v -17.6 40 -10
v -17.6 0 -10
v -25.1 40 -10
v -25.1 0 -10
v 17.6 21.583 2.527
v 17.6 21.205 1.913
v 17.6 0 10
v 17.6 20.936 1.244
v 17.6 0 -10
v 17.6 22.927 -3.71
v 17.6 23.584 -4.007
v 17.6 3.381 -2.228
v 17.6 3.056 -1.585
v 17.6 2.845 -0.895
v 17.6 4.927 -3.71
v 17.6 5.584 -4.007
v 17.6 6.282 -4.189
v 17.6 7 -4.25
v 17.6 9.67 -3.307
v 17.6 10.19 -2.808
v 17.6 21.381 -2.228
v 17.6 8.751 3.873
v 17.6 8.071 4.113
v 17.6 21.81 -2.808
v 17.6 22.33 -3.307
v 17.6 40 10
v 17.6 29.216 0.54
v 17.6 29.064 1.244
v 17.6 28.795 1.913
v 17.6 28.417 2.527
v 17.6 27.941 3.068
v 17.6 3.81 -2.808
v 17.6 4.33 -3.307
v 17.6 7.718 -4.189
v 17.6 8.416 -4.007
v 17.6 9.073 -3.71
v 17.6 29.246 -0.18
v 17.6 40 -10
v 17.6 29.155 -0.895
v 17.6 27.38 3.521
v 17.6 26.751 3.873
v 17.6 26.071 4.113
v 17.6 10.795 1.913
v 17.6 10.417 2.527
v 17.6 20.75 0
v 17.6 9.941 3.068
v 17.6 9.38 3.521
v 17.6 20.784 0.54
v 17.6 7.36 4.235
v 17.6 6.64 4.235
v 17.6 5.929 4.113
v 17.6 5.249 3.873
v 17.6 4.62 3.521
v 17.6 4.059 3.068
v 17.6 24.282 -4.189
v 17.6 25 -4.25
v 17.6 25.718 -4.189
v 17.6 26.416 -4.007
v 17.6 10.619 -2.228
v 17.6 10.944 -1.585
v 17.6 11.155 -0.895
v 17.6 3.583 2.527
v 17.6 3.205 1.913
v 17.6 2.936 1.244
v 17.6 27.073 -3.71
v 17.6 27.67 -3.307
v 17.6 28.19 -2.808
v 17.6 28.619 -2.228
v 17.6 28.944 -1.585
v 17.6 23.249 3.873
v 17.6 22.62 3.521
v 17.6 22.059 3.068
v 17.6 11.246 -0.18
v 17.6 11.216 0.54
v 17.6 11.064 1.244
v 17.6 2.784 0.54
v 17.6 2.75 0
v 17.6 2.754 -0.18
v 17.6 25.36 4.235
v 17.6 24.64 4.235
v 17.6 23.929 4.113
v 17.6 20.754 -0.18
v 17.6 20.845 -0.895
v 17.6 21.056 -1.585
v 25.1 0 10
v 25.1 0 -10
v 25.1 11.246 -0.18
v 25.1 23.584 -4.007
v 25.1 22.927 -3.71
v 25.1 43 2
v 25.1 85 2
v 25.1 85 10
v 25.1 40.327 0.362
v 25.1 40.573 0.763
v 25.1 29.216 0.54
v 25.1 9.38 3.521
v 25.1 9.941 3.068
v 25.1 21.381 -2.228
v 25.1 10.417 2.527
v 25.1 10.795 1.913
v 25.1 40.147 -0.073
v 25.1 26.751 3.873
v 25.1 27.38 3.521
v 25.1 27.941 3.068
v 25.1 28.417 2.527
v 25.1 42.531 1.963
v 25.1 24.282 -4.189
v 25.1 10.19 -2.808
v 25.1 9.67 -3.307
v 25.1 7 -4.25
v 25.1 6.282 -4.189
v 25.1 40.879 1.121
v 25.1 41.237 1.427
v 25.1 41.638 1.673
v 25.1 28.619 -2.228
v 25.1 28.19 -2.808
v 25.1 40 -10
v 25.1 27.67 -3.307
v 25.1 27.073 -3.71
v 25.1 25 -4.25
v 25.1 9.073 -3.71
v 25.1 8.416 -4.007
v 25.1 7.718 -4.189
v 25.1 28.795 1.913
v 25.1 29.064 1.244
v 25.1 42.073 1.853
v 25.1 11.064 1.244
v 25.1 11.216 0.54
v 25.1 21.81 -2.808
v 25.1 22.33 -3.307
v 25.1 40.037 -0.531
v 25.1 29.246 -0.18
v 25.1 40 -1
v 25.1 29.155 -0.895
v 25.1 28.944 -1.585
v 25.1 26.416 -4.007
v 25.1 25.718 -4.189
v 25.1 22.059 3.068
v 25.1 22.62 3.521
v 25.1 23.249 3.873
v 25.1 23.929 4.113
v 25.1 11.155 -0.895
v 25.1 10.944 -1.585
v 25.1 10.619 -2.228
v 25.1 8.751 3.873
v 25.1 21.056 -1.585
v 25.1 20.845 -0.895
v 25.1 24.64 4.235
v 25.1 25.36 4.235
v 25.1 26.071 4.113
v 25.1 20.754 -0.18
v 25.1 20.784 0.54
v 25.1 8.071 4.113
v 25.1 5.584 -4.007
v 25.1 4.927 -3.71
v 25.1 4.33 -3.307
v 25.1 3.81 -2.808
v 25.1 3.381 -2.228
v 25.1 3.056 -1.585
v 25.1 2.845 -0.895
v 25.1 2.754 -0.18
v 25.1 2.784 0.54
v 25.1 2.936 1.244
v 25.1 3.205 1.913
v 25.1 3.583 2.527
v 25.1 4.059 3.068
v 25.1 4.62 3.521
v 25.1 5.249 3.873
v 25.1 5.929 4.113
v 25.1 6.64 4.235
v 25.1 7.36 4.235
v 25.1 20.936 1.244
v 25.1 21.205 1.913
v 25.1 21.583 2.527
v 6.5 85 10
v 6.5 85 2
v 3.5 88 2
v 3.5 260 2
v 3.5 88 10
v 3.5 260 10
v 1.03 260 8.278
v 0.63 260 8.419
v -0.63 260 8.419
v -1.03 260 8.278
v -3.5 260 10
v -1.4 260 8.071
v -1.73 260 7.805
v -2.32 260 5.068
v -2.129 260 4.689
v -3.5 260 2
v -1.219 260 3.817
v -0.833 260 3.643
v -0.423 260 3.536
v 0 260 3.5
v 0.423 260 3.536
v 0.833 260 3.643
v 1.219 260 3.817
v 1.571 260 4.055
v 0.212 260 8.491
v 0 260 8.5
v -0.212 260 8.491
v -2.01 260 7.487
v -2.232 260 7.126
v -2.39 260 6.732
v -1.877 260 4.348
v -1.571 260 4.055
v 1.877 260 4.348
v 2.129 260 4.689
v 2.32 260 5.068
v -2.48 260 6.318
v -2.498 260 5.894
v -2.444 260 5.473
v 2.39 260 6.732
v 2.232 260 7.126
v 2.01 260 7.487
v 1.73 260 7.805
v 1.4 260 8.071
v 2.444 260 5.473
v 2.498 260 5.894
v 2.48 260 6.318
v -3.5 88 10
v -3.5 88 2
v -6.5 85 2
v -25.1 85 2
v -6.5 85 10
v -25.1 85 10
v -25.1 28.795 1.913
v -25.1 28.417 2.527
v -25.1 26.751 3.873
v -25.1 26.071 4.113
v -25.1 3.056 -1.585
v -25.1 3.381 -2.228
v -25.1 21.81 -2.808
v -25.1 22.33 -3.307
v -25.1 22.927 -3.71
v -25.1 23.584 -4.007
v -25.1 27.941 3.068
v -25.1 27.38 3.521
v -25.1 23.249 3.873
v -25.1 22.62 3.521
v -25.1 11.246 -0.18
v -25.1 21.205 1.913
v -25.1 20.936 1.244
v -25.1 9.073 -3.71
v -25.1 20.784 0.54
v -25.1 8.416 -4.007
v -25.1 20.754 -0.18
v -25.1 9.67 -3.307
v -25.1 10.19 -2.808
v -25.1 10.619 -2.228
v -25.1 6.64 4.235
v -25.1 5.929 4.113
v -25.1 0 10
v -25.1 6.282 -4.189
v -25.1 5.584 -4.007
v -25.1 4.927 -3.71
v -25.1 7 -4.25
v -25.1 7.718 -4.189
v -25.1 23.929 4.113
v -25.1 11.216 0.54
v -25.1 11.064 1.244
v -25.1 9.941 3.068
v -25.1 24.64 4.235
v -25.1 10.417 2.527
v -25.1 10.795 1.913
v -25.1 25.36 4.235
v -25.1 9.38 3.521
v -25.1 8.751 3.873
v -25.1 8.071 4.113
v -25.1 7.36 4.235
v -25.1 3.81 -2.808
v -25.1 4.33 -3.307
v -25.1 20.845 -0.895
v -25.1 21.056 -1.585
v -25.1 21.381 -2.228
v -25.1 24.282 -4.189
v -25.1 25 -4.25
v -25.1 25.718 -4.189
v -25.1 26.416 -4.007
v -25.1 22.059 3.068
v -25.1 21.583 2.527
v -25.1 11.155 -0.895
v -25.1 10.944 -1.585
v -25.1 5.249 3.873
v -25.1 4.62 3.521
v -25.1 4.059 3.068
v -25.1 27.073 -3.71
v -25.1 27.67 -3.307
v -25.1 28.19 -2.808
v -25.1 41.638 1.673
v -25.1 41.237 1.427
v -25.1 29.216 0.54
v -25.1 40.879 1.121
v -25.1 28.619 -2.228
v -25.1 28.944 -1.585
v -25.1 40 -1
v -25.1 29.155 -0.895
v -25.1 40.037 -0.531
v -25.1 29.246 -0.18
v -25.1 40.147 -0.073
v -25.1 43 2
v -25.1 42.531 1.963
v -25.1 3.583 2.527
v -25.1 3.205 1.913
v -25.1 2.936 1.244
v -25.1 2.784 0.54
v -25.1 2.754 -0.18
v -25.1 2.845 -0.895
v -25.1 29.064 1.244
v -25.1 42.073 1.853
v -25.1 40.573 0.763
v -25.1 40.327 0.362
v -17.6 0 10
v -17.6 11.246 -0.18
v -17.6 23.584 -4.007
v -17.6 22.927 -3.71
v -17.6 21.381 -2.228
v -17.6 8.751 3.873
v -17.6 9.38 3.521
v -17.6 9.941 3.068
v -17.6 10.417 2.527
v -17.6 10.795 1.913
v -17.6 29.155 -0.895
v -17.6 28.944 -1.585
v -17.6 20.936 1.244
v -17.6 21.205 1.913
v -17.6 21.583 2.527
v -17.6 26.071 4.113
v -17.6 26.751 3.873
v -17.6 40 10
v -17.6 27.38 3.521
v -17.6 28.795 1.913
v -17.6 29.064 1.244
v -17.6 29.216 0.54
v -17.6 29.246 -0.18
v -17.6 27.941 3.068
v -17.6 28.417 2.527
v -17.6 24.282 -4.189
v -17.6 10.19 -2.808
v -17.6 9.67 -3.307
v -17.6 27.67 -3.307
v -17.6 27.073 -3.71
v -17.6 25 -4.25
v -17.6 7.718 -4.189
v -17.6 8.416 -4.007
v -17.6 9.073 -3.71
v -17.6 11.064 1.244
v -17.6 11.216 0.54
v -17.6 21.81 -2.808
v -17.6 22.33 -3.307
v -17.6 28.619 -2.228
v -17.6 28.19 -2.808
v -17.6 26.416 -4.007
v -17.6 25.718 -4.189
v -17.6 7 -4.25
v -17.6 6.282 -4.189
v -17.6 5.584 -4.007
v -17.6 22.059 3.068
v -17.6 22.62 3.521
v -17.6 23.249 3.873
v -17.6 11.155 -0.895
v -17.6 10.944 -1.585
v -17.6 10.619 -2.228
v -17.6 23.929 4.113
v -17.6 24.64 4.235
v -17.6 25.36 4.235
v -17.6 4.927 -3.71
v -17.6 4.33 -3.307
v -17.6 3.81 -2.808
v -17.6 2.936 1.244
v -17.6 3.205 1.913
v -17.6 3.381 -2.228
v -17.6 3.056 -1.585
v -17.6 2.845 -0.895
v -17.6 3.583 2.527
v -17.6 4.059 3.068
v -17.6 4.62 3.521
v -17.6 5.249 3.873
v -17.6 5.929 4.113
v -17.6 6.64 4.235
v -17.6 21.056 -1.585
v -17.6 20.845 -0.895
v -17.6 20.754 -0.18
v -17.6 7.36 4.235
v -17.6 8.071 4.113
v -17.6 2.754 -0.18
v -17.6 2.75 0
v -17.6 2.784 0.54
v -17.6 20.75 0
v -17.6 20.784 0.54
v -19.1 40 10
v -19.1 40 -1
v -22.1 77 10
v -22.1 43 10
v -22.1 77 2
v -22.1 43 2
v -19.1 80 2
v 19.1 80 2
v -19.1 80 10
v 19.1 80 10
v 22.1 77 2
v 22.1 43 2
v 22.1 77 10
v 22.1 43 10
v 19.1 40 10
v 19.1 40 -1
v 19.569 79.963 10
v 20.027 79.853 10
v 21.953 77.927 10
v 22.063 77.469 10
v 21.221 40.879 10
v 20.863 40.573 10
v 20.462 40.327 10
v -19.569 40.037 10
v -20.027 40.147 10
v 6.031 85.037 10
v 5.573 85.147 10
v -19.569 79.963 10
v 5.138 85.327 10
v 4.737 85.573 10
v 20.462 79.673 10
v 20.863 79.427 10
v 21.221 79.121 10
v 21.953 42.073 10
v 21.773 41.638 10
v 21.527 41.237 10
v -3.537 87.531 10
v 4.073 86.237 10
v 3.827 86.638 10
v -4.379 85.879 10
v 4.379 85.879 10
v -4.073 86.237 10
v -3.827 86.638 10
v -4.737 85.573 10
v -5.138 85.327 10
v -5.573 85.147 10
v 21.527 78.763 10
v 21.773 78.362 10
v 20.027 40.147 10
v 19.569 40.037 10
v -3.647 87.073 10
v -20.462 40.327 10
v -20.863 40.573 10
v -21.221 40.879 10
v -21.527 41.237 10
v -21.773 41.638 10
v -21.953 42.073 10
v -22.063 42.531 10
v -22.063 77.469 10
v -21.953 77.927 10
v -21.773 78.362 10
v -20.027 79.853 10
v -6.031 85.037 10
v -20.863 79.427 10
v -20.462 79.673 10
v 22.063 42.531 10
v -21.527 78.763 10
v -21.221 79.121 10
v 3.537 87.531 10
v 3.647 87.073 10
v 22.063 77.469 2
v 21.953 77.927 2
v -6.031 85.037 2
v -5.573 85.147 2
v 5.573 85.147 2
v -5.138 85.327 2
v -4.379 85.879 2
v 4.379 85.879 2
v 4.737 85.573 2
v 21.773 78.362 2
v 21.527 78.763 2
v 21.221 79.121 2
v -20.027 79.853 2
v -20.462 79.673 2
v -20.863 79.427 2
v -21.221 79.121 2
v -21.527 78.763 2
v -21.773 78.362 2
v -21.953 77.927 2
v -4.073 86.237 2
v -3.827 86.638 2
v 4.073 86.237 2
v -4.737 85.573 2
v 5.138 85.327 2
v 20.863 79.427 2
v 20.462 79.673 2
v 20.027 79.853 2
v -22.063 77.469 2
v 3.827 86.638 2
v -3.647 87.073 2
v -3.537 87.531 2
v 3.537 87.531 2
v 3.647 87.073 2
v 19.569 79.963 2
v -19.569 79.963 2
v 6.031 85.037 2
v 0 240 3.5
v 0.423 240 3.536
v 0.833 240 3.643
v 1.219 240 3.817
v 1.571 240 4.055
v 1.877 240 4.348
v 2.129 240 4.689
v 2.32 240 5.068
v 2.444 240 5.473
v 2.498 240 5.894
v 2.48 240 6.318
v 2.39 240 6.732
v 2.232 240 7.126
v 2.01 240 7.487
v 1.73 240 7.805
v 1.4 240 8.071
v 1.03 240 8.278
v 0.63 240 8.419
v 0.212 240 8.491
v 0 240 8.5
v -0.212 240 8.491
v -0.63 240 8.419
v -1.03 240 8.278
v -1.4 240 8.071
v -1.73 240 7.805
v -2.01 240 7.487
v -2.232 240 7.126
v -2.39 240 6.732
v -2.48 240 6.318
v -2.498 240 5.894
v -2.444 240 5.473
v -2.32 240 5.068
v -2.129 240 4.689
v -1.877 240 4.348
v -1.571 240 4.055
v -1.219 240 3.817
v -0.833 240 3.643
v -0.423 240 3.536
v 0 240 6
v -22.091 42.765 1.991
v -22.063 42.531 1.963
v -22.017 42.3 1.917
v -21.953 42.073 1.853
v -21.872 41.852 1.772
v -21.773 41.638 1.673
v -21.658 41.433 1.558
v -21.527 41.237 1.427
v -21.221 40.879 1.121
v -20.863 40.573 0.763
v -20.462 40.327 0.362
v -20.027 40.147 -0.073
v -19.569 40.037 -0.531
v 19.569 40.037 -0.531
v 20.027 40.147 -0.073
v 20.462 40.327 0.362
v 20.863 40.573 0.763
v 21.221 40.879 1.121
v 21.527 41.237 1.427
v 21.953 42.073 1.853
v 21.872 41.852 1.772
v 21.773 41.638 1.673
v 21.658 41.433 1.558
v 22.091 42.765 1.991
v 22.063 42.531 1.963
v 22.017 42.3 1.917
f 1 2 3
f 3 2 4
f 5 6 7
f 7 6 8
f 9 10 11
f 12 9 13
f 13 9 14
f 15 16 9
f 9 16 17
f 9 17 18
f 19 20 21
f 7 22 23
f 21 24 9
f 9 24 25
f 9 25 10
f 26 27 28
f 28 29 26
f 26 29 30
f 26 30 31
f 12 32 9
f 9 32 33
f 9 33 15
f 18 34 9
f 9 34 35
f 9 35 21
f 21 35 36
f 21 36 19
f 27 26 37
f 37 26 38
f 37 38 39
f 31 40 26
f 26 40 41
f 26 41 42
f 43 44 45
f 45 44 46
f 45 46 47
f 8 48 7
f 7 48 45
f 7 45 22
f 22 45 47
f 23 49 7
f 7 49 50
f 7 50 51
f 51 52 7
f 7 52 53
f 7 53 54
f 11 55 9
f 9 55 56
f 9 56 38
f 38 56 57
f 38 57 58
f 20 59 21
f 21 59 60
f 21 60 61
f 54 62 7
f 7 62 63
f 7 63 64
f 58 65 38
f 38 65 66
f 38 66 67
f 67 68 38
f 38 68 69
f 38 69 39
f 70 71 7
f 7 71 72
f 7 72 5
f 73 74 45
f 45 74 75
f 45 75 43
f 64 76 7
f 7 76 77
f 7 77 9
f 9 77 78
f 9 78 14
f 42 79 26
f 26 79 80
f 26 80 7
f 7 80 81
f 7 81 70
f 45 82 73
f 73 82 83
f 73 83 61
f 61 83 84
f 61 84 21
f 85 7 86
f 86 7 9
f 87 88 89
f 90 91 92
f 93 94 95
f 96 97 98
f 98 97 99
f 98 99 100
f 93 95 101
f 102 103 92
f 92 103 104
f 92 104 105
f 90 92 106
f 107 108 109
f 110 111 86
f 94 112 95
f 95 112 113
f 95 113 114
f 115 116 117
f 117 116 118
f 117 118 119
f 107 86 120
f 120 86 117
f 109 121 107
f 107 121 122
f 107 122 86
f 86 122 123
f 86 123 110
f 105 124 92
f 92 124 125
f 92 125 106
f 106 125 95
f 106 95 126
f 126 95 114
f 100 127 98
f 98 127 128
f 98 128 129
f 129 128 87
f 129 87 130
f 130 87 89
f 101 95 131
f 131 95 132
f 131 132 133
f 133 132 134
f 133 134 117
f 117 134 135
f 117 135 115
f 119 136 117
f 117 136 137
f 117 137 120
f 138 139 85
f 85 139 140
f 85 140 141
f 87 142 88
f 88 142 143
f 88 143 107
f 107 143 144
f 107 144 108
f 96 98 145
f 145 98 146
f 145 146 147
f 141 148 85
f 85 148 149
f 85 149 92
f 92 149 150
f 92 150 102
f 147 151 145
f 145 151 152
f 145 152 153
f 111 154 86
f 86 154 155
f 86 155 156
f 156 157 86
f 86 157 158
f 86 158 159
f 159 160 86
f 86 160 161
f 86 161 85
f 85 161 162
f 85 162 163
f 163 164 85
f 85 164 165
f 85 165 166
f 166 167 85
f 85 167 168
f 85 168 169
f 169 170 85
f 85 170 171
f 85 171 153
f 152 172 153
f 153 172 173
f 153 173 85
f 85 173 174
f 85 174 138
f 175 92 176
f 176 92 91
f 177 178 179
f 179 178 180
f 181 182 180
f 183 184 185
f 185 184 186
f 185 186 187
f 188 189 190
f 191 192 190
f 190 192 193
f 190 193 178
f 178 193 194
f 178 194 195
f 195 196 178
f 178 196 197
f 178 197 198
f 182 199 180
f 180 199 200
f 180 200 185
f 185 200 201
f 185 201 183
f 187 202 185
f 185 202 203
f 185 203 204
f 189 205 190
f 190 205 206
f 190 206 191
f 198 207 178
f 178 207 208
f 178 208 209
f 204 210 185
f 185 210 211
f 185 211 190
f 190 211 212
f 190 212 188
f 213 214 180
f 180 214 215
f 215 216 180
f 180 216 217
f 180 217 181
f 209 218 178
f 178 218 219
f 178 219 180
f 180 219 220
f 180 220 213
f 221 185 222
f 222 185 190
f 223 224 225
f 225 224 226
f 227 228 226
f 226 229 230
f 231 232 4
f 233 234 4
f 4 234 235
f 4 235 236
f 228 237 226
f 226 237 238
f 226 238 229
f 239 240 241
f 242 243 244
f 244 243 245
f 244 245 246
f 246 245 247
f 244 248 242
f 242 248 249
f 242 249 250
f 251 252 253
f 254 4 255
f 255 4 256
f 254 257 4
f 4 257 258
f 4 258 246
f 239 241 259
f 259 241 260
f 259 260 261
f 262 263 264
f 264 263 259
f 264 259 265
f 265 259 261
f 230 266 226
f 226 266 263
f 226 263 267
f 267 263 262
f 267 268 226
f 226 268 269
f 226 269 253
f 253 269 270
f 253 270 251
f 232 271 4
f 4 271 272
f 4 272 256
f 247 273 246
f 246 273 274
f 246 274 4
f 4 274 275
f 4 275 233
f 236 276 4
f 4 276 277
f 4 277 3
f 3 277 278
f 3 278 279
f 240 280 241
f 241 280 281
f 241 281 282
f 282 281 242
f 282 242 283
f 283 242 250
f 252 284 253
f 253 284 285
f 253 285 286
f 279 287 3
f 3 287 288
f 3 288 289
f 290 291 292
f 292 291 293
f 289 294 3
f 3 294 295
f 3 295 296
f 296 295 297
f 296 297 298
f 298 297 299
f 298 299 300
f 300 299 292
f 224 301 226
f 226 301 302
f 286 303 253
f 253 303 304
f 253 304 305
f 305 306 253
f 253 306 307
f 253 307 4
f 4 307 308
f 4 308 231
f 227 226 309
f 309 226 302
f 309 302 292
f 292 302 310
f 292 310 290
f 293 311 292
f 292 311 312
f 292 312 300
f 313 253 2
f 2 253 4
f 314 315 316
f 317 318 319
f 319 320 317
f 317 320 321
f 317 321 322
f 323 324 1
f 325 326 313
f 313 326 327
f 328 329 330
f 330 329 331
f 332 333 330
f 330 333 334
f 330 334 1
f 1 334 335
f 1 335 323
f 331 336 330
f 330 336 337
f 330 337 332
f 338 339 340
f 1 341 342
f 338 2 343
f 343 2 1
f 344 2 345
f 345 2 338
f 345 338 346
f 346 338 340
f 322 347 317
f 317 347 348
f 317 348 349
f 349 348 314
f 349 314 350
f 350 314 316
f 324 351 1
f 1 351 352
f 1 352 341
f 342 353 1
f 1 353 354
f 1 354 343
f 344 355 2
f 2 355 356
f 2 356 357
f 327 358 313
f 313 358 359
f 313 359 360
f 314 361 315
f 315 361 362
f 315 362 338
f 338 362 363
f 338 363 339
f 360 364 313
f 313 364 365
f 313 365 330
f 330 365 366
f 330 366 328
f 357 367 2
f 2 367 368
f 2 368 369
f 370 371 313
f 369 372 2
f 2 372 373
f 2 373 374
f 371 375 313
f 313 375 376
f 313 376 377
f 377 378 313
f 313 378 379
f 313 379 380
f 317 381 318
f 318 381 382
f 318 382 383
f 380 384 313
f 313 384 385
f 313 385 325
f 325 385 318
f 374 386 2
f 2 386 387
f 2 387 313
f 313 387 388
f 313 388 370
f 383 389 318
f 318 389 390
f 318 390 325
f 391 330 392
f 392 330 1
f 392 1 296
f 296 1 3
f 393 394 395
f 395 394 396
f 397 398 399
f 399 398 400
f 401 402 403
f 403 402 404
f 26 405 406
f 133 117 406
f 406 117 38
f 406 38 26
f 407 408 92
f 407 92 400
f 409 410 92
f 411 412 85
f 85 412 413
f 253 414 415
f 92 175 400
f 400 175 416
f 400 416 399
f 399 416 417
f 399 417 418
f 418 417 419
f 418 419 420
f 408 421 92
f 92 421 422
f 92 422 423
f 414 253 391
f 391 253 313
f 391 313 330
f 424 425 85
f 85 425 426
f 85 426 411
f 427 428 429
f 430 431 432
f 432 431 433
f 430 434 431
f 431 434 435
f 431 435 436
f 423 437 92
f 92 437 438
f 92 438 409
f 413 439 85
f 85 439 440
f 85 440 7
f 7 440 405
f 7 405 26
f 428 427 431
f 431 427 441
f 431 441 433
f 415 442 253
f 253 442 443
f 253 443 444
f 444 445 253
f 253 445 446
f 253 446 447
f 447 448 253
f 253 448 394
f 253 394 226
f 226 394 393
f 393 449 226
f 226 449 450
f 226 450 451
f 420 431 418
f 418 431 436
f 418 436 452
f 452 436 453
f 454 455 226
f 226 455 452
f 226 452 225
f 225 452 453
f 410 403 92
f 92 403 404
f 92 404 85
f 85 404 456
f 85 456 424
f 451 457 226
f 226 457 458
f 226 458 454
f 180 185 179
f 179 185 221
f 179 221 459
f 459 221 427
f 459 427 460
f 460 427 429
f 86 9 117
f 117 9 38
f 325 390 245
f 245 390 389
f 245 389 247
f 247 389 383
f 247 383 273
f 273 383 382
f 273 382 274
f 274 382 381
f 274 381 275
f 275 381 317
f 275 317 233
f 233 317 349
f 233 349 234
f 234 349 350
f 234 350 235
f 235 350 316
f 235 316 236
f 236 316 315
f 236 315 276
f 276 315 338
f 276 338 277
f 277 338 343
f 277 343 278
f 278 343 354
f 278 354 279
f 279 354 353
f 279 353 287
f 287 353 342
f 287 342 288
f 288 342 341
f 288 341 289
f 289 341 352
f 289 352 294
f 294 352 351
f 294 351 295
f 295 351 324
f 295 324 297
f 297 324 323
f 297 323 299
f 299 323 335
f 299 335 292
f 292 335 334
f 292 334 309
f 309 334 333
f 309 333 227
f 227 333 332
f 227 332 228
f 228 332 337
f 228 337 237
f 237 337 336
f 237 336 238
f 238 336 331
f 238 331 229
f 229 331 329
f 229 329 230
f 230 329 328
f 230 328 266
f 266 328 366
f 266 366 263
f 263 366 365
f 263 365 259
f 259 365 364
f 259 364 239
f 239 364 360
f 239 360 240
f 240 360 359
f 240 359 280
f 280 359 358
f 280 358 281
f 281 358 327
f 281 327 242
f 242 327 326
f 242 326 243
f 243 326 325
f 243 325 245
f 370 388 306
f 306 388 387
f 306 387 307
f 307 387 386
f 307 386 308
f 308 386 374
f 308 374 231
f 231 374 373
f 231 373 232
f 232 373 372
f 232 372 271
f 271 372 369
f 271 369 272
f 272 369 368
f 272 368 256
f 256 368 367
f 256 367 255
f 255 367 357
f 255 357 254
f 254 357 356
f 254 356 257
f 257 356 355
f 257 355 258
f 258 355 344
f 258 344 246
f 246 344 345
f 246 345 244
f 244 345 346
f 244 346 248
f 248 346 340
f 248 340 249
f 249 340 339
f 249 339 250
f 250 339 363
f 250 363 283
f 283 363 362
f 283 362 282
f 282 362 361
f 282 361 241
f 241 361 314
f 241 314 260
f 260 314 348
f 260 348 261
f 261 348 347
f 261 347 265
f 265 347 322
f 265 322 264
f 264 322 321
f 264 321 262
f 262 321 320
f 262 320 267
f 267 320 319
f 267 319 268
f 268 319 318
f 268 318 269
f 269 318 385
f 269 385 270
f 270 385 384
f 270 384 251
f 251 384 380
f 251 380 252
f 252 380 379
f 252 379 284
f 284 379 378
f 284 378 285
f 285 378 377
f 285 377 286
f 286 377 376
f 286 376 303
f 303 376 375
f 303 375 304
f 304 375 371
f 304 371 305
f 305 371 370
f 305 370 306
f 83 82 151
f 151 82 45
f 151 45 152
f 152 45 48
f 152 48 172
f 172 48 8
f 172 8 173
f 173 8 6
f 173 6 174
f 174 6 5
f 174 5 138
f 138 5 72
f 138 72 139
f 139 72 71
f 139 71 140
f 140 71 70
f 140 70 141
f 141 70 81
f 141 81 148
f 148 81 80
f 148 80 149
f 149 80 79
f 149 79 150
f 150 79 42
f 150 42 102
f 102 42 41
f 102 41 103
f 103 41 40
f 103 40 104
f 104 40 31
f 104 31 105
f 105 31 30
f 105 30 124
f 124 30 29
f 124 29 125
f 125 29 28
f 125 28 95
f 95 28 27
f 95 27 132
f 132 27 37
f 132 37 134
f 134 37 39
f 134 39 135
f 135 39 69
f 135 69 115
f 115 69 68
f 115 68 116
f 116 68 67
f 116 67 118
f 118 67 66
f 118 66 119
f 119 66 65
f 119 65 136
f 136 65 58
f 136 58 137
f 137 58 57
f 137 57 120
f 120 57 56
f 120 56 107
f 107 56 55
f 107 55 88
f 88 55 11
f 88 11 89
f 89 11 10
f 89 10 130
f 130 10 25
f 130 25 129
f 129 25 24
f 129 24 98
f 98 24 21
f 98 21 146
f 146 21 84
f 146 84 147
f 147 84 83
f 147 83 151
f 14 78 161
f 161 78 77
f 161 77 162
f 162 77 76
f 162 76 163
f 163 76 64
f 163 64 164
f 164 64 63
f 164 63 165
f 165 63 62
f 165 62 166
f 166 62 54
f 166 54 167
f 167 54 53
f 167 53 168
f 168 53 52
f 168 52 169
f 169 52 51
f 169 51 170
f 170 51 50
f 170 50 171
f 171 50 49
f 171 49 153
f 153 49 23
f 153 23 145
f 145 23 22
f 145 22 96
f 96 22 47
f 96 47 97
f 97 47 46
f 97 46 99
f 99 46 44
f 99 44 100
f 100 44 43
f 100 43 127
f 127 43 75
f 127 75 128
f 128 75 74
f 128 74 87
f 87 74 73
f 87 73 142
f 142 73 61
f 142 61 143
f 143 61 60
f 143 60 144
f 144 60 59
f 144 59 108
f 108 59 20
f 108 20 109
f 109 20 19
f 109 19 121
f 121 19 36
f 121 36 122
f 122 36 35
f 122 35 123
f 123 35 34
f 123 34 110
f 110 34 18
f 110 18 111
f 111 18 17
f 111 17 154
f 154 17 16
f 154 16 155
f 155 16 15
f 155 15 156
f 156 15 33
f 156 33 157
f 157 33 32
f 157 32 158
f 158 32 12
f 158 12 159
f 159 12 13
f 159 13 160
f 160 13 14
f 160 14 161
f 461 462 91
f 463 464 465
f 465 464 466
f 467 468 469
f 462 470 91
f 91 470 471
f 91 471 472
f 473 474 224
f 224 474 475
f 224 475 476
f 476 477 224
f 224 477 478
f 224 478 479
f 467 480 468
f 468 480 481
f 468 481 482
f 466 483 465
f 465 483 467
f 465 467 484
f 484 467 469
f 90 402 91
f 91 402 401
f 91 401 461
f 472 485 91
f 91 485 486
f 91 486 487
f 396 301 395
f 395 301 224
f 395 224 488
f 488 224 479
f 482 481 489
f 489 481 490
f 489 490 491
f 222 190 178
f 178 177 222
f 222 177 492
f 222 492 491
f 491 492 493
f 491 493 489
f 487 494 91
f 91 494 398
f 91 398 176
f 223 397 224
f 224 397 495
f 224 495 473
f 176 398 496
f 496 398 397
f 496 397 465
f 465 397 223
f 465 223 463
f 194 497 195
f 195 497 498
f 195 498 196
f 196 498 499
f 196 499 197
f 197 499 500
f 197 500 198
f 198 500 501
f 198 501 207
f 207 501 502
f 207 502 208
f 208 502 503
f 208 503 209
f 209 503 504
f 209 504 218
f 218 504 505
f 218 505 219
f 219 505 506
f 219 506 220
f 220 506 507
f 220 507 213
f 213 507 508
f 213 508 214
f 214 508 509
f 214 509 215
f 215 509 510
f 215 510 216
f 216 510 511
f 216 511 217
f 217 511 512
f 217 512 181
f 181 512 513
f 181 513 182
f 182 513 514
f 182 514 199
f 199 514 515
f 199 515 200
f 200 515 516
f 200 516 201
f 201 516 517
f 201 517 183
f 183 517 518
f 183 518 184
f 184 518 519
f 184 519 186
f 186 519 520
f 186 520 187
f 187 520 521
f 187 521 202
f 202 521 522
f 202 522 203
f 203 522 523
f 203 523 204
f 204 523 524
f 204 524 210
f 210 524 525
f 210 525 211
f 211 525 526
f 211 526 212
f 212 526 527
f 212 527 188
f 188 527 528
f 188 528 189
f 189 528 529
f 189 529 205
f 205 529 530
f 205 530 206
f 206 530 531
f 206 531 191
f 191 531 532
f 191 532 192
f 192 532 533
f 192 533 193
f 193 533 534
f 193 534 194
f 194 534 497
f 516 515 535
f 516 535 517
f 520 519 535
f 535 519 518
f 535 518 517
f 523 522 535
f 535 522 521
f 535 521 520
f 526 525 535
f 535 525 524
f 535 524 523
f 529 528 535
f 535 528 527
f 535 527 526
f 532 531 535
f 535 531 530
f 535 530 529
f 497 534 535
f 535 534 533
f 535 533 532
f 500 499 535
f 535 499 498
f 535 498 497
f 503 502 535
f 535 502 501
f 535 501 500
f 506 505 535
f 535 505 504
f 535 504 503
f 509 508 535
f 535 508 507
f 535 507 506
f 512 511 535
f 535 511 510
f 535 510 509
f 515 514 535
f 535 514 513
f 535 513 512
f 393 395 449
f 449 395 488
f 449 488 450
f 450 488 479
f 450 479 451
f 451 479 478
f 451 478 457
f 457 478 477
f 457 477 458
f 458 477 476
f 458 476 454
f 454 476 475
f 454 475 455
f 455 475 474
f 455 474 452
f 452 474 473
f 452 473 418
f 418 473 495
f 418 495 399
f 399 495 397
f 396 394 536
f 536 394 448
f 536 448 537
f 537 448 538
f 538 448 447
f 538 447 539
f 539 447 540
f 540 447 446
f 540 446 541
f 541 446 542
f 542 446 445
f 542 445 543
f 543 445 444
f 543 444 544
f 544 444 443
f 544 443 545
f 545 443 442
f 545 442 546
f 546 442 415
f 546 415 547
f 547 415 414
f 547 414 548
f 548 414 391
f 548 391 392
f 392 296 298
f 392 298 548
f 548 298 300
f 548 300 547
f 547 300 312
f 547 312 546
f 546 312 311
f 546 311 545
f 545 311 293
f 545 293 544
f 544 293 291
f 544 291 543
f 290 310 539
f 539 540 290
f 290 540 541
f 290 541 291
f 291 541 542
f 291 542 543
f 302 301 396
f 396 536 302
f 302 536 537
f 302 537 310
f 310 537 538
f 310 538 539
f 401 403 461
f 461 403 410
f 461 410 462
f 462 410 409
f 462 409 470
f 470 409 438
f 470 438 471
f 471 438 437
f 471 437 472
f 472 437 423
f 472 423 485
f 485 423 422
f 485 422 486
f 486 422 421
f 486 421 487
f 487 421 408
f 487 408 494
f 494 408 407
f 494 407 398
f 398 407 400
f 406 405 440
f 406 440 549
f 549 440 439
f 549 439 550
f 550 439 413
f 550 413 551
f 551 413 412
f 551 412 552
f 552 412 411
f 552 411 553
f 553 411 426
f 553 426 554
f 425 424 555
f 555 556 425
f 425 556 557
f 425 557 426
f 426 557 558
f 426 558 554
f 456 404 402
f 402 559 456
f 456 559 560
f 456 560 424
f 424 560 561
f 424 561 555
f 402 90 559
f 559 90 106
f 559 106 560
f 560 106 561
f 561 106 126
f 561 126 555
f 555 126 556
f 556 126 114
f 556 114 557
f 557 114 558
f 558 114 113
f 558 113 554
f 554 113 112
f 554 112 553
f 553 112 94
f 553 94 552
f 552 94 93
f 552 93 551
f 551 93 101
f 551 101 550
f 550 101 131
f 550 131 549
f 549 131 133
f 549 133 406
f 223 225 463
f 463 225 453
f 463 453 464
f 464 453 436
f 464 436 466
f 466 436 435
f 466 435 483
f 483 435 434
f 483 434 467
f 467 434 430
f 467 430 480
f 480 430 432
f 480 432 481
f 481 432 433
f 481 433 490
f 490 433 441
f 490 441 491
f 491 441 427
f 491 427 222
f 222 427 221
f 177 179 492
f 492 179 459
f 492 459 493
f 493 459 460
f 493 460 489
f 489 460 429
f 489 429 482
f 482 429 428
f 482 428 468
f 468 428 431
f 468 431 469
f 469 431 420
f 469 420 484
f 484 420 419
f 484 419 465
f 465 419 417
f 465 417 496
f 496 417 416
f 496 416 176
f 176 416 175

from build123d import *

# Parameters (mm, degrees)
BOSS_EXTRUDE4_DEPTH     = 10
CUT_EXTRUDE2_DEPTH      = 262.400095639
CUT_EXTRUDE2_DEPTH_BACK = 262.400095639
SKETCH7_R               = 4.25
CUT_EXTRUDE4_DEPTH      = 262.400095639
CUT_EXTRUDE4_DEPTH_BACK = 262.400095639
SKETCH11_W              = 18.643899753
SKETCH11_H              = 220
CUT_EXTRUDE5_DEPTH      = 262.400095639
CUT_EXTRUDE5_DEPTH_BACK = 20
SKETCH12_R              = 2.5
FILLET3_R               = 3


with BuildPart() as part:
    # Sketch6 → Boss-Extrude4 (new, symmetric)
    with BuildSketch(Plane.XY):
        Polygon((-25.1, 0), (-17.6, 0), (-17.6, 40), (-22.1, 40), (-22.1, 80), (22.1, 80), (22.1, 40), (17.6, 40), (17.6, 0), (25.1, 0), (25.1, 85), (3.5, 85), (3.5, 260), (-3.5, 260), (-3.5, 85), (-25.1, 85), align=None)
    extrude(amount=BOSS_EXTRUDE4_DEPTH, both=True)

    # Sketch7 → Cut-Extrude2 (cut, two sides: drawn at the far end of the back side and taken through both)
    with BuildSketch(Plane(origin=(0, 0, 0), x_dir=(0, 0, -1), z_dir=(1, 0, 0)).offset(-CUT_EXTRUDE2_DEPTH_BACK)):
        with Locations((0, 7)):
            Circle(SKETCH7_R)
        with Locations((0, 25)):
            Circle(SKETCH7_R)
    extrude(amount=CUT_EXTRUDE2_DEPTH + CUT_EXTRUDE2_DEPTH_BACK, mode=Mode.SUBTRACT)

    # Sketch11 → Cut-Extrude4 (cut, two sides: drawn at the far end of the back side and taken through both)
    with BuildSketch(Plane(origin=(0, 0, 0), x_dir=(0, 0, -1), z_dir=(1, 0, 0)).offset(-CUT_EXTRUDE4_DEPTH_BACK)):
        with Locations((7.321949876, 150)):
            Rectangle(SKETCH11_W, SKETCH11_H)
    extrude(amount=CUT_EXTRUDE4_DEPTH + CUT_EXTRUDE4_DEPTH_BACK, mode=Mode.SUBTRACT)

    # Sketch12 → Cut-Extrude5 (cut, two sides: drawn at the far end of the back side and taken through both)
    with BuildSketch(Plane(origin=(0, 260, 0), x_dir=(1, 0, 0), z_dir=(0, 1, 0)).offset(-CUT_EXTRUDE5_DEPTH_BACK)):
        with Locations(Location((0, -6, 0), (0, 0, 90))):
            Circle(SKETCH12_R)
    extrude(amount=CUT_EXTRUDE5_DEPTH + CUT_EXTRUDE5_DEPTH_BACK, mode=Mode.SUBTRACT)

    # Fillet3
    fillet3_edges = [part.edges().sort_by_distance(p)[0] for p in [
        (-23.6, 40, 2),
        (23.6, 40, 2),
        (22.1, 40, 6),
        (22.1, 80, 6),
        (-22.1, 80, 6),
        (-22.1, 40, 6),
        (-3.5, 85, 6),
        (3.5, 85, 6),
    ]]
    fillet(fillet3_edges, radius=FILLET3_R)


solid = part.part
